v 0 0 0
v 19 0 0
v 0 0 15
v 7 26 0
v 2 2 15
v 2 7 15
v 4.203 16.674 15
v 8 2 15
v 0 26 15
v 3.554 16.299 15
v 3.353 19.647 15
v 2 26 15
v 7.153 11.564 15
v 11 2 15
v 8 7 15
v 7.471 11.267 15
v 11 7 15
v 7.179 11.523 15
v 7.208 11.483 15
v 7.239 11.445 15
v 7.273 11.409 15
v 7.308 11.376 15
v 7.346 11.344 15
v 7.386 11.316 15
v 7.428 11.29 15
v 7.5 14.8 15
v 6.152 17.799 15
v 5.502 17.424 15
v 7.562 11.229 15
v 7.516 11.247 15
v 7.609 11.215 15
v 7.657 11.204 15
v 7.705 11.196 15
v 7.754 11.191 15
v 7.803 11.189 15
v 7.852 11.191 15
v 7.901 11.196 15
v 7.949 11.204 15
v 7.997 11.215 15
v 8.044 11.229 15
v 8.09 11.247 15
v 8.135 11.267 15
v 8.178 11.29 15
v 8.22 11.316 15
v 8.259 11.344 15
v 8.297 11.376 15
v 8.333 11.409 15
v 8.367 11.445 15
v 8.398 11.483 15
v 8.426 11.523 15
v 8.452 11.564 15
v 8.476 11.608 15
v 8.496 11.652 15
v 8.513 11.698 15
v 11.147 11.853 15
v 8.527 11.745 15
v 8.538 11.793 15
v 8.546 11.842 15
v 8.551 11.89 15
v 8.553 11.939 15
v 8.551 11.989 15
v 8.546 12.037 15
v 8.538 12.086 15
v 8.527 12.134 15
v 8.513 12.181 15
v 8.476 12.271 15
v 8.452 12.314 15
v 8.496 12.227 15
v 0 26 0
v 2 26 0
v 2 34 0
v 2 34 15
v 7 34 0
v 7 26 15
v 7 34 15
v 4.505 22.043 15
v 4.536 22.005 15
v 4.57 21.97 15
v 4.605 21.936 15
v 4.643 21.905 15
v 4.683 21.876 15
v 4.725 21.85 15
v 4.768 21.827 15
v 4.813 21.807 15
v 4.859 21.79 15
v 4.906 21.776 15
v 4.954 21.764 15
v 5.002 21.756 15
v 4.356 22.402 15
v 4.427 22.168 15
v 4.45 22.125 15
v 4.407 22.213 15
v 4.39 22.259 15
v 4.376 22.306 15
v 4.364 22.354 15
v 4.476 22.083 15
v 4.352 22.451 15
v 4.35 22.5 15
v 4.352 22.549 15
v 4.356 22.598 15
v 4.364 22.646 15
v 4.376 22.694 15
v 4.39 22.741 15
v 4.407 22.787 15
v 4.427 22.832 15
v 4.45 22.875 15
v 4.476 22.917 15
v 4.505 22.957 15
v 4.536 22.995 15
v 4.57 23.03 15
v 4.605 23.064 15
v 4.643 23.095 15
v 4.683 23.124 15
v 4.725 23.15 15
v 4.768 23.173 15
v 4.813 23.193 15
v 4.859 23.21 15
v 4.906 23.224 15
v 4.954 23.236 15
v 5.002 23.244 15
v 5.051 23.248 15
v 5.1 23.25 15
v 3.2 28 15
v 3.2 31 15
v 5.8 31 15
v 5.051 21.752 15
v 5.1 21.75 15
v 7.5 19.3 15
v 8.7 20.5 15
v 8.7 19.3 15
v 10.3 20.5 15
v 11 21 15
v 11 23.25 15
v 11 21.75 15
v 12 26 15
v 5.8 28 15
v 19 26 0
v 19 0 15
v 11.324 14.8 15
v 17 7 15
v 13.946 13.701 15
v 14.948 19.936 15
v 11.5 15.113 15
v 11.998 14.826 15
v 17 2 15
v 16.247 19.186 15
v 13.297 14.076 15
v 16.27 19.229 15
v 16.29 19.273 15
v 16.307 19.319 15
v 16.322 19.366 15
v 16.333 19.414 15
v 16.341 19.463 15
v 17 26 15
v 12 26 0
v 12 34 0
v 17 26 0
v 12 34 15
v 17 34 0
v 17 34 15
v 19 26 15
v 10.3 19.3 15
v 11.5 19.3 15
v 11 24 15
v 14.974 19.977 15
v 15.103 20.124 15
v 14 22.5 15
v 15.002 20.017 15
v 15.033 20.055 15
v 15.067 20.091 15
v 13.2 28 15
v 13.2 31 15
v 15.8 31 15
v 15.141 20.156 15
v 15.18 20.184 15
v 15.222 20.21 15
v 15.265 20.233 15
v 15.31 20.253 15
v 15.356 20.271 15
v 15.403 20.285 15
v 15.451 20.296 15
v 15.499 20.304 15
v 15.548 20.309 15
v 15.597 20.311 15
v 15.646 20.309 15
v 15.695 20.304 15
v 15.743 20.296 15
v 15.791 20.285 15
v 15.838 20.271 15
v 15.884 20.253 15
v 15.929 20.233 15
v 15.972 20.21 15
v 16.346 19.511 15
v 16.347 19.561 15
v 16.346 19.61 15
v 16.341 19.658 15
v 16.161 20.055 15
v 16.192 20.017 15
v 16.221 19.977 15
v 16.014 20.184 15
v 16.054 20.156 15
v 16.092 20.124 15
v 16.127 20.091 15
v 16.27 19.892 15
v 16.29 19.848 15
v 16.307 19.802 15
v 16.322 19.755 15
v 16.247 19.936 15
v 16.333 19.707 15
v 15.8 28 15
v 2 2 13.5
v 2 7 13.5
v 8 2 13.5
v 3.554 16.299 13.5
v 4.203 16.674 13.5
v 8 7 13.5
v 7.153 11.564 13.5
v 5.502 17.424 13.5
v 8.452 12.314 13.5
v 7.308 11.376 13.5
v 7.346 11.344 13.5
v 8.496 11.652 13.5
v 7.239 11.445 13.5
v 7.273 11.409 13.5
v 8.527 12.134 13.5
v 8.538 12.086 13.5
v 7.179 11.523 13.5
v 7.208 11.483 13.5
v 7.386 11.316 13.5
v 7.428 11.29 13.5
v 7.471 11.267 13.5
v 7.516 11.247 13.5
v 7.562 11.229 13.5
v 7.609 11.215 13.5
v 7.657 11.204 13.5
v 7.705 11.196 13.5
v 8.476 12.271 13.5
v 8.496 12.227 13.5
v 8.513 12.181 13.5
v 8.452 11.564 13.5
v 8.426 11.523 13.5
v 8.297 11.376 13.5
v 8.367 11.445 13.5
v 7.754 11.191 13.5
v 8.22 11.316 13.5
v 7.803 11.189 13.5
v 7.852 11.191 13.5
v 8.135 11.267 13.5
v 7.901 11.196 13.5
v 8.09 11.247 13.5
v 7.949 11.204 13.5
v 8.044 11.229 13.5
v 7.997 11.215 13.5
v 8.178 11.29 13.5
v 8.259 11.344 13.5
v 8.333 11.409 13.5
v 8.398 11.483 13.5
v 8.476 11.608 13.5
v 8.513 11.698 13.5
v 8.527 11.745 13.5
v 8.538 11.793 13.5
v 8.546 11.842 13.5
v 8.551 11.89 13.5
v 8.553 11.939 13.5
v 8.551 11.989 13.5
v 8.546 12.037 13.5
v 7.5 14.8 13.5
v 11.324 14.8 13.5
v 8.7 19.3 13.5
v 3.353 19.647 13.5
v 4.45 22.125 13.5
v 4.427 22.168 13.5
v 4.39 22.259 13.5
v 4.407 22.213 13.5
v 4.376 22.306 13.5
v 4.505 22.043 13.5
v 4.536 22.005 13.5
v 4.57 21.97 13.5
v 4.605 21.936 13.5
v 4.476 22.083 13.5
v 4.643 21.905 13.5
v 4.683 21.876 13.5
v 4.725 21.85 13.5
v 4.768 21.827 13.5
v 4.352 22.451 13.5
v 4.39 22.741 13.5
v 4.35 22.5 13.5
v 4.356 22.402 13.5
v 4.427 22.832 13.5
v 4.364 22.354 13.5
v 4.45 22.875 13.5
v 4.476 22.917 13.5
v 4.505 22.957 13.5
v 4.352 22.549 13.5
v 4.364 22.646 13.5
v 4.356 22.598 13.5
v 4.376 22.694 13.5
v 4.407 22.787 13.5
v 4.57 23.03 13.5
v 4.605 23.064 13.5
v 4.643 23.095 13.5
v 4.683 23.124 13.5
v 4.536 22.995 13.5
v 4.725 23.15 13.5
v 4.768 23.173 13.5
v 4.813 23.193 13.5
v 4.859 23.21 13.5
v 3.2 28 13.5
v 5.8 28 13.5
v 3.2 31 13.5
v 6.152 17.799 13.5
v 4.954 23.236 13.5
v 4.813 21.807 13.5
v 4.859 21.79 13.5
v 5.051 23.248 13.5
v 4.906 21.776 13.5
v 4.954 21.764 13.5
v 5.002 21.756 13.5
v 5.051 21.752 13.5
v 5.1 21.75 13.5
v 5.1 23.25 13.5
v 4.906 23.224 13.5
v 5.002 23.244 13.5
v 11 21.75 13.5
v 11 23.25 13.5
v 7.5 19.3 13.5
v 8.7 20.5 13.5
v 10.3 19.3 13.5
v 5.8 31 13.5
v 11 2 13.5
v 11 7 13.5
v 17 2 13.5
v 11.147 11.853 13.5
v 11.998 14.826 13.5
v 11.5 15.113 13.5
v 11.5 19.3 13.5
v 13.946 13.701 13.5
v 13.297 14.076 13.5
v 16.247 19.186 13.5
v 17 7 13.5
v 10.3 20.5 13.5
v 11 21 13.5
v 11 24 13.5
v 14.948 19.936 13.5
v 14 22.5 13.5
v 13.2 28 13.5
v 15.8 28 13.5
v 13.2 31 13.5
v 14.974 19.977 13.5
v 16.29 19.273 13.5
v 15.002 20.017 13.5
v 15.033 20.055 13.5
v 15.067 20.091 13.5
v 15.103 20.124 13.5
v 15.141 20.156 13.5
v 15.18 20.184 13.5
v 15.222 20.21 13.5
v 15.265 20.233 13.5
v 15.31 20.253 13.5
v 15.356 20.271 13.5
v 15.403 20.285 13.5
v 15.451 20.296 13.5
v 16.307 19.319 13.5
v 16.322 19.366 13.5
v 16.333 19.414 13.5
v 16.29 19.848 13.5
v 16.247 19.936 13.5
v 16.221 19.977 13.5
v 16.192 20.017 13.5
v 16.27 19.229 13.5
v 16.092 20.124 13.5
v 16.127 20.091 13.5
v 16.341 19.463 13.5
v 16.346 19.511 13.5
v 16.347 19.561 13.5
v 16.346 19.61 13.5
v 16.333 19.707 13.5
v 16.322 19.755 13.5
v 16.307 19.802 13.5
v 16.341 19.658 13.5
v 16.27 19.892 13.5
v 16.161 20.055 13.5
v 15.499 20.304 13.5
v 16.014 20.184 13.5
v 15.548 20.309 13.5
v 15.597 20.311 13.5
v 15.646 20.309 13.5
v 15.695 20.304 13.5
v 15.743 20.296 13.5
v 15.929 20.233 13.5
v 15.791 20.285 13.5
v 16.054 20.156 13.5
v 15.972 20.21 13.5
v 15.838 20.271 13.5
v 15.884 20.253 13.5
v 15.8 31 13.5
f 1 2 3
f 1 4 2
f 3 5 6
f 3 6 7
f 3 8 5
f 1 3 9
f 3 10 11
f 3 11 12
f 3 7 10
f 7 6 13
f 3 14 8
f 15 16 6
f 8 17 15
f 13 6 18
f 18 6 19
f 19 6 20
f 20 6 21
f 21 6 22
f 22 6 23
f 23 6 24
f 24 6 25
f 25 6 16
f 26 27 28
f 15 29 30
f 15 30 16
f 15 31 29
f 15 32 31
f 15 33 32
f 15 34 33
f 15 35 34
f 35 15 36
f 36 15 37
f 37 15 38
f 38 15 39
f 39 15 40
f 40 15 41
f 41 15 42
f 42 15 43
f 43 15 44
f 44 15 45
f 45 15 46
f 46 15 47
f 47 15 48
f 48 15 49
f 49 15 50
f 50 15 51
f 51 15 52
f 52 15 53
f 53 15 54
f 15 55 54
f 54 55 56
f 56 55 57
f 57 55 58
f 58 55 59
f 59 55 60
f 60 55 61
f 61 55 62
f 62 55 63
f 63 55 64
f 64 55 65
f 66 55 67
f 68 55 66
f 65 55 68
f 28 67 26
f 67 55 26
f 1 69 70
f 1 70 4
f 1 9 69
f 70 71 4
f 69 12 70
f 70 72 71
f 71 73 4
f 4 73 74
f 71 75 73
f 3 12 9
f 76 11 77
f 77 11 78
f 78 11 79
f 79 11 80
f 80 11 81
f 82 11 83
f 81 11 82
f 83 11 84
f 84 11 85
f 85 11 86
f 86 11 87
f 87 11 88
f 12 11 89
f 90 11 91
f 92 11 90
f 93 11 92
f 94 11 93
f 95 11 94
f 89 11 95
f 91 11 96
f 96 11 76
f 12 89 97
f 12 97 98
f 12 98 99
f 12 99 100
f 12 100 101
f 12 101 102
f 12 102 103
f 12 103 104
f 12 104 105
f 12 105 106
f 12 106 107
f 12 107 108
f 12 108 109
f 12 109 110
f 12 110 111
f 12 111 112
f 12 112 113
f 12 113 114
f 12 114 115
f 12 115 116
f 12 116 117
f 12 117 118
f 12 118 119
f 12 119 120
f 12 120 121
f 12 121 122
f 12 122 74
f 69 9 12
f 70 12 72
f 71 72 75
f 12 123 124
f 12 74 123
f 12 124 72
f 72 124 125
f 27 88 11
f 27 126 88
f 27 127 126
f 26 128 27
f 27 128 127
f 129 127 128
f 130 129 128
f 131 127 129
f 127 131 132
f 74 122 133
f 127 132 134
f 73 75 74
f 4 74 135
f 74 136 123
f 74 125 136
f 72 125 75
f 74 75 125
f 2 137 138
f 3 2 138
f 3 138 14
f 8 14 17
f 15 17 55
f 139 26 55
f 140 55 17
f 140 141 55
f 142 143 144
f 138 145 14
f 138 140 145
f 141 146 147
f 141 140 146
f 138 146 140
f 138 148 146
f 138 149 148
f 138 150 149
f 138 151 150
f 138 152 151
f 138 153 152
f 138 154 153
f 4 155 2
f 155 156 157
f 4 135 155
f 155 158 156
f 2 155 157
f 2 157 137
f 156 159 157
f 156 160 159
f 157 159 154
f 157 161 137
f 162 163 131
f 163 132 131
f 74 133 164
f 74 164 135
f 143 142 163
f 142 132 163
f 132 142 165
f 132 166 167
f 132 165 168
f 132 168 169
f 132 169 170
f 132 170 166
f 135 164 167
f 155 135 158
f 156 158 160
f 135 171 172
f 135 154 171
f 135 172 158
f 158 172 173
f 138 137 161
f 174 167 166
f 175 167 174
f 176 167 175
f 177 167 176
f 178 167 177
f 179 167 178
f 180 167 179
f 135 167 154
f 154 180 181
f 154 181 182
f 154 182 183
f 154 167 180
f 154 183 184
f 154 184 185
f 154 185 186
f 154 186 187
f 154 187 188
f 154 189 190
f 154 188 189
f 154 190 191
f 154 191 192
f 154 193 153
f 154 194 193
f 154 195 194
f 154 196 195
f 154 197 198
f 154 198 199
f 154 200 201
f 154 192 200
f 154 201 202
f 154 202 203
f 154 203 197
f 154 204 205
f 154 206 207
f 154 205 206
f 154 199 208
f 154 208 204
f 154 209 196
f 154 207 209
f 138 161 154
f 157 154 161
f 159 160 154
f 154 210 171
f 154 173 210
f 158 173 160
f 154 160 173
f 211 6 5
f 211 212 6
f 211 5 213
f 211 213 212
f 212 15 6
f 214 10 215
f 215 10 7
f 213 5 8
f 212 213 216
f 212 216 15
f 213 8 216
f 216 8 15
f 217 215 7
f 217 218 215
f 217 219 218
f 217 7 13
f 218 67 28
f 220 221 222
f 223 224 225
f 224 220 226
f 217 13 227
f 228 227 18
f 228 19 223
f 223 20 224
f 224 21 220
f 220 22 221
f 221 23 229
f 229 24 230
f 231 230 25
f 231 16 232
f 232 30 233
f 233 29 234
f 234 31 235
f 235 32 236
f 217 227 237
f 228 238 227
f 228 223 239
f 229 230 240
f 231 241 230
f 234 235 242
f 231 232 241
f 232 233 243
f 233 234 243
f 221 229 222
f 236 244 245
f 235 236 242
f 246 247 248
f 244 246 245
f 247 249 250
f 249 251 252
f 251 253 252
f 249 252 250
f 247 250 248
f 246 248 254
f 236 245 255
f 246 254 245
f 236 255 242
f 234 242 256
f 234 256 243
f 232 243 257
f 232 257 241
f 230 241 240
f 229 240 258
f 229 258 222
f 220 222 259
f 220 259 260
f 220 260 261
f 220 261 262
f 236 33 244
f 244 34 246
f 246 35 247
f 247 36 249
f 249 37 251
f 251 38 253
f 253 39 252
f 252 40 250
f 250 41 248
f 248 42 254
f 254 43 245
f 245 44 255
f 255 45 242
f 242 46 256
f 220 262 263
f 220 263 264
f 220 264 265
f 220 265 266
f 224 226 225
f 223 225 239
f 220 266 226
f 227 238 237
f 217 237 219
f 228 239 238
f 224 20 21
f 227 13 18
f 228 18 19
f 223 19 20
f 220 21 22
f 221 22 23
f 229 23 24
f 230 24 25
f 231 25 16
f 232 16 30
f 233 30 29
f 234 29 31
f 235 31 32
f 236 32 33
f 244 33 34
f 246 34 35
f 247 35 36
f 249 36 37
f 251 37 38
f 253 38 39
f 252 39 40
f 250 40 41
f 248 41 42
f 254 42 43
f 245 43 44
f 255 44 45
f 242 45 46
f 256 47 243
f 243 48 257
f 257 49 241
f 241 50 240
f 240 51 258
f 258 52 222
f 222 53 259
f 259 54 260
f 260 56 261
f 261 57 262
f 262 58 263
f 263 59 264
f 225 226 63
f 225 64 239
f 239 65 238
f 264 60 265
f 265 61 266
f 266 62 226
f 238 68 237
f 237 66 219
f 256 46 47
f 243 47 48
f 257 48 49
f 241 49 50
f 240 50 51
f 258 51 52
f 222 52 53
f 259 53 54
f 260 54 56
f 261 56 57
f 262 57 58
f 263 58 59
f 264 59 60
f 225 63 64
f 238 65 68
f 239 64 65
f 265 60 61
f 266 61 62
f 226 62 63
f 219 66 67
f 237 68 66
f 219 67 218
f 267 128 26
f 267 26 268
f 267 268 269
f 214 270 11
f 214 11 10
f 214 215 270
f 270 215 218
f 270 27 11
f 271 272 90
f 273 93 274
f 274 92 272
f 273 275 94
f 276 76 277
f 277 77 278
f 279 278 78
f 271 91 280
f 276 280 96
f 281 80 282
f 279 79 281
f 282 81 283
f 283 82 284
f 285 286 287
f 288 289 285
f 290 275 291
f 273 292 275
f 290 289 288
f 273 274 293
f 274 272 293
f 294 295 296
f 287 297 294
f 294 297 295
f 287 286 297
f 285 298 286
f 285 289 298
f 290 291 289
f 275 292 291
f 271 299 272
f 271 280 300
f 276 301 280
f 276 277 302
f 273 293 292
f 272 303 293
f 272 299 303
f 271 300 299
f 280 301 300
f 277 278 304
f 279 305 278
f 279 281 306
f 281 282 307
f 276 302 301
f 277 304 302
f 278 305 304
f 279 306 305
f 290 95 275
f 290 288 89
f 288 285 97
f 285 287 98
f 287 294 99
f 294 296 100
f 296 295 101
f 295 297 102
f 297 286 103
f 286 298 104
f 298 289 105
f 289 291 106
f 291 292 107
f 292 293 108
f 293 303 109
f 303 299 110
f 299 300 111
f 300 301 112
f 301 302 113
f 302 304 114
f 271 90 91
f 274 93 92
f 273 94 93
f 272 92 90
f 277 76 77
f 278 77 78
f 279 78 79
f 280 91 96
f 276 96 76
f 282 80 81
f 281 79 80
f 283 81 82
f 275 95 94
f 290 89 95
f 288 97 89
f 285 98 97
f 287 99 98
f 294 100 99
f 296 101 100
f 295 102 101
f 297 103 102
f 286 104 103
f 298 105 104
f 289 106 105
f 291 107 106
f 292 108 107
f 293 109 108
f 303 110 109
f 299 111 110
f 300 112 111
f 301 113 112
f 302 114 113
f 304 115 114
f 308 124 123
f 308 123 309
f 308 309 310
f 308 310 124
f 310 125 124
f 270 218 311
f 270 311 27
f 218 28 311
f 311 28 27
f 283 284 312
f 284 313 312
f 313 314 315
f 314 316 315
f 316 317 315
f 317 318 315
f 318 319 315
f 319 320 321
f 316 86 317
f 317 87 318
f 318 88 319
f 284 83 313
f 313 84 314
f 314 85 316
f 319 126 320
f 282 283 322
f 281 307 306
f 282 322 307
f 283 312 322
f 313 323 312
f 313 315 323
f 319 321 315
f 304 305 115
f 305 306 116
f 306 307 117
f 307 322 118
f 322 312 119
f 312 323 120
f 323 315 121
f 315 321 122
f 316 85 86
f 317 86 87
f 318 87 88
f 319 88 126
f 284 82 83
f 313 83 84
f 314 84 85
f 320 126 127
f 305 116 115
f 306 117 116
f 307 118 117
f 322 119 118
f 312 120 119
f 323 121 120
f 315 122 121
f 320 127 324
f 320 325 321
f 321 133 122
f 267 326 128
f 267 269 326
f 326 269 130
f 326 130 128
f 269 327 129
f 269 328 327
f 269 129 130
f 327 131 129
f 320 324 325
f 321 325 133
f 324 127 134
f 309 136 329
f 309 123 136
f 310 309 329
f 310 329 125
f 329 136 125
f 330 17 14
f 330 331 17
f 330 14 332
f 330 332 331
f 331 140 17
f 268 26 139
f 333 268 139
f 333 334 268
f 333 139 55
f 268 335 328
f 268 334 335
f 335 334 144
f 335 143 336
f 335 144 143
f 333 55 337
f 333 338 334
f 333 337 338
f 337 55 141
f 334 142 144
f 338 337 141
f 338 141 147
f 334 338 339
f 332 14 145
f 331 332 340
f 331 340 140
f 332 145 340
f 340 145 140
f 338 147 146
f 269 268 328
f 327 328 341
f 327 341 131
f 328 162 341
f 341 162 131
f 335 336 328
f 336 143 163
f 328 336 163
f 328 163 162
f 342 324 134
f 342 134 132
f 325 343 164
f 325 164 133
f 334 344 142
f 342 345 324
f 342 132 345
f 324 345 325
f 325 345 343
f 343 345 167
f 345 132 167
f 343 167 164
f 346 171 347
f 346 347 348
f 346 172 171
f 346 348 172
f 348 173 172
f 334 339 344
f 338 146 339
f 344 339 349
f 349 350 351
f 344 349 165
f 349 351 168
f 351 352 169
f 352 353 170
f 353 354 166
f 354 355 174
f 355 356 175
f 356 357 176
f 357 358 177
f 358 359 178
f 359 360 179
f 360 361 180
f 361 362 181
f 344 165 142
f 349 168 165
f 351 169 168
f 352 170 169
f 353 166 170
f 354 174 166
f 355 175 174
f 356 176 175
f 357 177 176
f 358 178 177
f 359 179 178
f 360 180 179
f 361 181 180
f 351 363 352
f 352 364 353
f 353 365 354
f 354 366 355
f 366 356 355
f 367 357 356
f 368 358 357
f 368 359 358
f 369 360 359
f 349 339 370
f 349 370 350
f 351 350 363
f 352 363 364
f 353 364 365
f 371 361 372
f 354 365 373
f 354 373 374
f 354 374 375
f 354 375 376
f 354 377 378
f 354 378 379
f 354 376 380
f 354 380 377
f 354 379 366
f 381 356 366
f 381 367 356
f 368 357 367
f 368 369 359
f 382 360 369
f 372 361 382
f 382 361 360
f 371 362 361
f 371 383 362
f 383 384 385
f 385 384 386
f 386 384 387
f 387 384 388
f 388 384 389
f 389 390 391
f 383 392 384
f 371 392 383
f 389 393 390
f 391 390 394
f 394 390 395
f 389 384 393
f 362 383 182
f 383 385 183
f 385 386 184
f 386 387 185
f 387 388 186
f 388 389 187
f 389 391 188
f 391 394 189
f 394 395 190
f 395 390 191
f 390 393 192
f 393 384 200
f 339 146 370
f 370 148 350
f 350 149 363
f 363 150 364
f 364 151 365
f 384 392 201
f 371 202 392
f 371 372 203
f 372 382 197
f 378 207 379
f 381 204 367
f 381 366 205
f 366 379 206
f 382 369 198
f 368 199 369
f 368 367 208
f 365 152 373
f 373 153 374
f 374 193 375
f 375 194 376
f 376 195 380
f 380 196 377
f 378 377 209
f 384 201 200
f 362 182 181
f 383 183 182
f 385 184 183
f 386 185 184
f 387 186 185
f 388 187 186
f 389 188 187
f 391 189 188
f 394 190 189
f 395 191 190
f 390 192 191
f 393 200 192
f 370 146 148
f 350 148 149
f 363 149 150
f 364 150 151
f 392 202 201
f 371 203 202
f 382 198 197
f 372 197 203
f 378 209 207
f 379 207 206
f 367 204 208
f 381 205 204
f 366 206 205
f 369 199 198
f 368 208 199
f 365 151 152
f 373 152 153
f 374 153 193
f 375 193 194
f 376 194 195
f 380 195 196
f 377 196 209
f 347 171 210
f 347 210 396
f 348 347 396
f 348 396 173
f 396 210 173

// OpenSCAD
// Building facade miniature for board games.
// Millimetres. X=width, Y=height, Z=depth.
// Print flat at Z=0; straight base at Y=0; front at Z=15.
// All recesses are blind and 1.5 mm deep. This is a solid piece.
$fn=96;
depth=15;
recess=1.5;
module rect(x,y,w,h) { translate([x,y]) square([w,h]); }
module disc(x,y,r) { translate([x,y]) circle(r=r); }
module line(a,b,w=1.4) {
    hull() { translate(a) circle(d=w); translate(b) circle(d=w); }
}
module frame(x,y,w,h,t=1.4) {
    difference() { rect(x,y,w,h); rect(x+t,y+t,w-2*t,h-2*t); }
}
module gear(x,y,r=6,inner=2.4) {
    translate([x,y]) difference() {
        polygon([for(i=[0:(r<4?15:23)]) let(n=(r<4?16:24),a=(i+1)*360/n,rr=(i%4<2?r:r-min(1.5,r*0.21))) [rr*cos(a),rr*sin(a)]]);
        circle(r=inner);
    }
}
module car(x,y,w=14,h=5) {
    translate([x,y]) union() {
        polygon([[0,0.8],[0,h*0.48],[w*0.2,h*0.48],
                 [w*0.35,h],[w*0.67,h],[w*0.82,h*0.48],
                 [w,h*0.35],[w,0.8]]);
        disc(w*0.23,0.8,1.3); disc(w*0.77,0.8,1.3);
    }
}
module recycling(x,y,r=6) {
    translate([x,y]) for(a=[0,120,240]) rotate(a) {
        line([-3.8,3.2],[1.2,3.2],1.6);
        polygon([[1.2,1.7],[4.2,3.2],[1.2,4.7]]);
    }
}
module cutface() { translate([0,0,depth-recess]) linear_extrude(height=recess+0.5) facade(); }
// All details are recessed into the same solid facade.
difference() {
    linear_extrude(height=depth) outline();
    cutface();
}


module outline() {
    union() { rect(0,0,19,26); rect(2,24,5,10); rect(12,24,5,10); }
}
module facade() {
    translate([9.5,18]) for(a=[0,120,240]) rotate(a) {
        line([-4.4,4.5],[1.5,4.5],1.5);
        polygon([[1.5,3],[4.5,4.5],[1.5,6]]);
    }
    rect(7.5,14.8,4,4.5); rect(8.7,19.3,1.6,1.2);
    rect(2,2,6,5); rect(11,2,6,5);
    rect(3.2,28,2.6,3); rect(13.2,28,2.6,3);
}
